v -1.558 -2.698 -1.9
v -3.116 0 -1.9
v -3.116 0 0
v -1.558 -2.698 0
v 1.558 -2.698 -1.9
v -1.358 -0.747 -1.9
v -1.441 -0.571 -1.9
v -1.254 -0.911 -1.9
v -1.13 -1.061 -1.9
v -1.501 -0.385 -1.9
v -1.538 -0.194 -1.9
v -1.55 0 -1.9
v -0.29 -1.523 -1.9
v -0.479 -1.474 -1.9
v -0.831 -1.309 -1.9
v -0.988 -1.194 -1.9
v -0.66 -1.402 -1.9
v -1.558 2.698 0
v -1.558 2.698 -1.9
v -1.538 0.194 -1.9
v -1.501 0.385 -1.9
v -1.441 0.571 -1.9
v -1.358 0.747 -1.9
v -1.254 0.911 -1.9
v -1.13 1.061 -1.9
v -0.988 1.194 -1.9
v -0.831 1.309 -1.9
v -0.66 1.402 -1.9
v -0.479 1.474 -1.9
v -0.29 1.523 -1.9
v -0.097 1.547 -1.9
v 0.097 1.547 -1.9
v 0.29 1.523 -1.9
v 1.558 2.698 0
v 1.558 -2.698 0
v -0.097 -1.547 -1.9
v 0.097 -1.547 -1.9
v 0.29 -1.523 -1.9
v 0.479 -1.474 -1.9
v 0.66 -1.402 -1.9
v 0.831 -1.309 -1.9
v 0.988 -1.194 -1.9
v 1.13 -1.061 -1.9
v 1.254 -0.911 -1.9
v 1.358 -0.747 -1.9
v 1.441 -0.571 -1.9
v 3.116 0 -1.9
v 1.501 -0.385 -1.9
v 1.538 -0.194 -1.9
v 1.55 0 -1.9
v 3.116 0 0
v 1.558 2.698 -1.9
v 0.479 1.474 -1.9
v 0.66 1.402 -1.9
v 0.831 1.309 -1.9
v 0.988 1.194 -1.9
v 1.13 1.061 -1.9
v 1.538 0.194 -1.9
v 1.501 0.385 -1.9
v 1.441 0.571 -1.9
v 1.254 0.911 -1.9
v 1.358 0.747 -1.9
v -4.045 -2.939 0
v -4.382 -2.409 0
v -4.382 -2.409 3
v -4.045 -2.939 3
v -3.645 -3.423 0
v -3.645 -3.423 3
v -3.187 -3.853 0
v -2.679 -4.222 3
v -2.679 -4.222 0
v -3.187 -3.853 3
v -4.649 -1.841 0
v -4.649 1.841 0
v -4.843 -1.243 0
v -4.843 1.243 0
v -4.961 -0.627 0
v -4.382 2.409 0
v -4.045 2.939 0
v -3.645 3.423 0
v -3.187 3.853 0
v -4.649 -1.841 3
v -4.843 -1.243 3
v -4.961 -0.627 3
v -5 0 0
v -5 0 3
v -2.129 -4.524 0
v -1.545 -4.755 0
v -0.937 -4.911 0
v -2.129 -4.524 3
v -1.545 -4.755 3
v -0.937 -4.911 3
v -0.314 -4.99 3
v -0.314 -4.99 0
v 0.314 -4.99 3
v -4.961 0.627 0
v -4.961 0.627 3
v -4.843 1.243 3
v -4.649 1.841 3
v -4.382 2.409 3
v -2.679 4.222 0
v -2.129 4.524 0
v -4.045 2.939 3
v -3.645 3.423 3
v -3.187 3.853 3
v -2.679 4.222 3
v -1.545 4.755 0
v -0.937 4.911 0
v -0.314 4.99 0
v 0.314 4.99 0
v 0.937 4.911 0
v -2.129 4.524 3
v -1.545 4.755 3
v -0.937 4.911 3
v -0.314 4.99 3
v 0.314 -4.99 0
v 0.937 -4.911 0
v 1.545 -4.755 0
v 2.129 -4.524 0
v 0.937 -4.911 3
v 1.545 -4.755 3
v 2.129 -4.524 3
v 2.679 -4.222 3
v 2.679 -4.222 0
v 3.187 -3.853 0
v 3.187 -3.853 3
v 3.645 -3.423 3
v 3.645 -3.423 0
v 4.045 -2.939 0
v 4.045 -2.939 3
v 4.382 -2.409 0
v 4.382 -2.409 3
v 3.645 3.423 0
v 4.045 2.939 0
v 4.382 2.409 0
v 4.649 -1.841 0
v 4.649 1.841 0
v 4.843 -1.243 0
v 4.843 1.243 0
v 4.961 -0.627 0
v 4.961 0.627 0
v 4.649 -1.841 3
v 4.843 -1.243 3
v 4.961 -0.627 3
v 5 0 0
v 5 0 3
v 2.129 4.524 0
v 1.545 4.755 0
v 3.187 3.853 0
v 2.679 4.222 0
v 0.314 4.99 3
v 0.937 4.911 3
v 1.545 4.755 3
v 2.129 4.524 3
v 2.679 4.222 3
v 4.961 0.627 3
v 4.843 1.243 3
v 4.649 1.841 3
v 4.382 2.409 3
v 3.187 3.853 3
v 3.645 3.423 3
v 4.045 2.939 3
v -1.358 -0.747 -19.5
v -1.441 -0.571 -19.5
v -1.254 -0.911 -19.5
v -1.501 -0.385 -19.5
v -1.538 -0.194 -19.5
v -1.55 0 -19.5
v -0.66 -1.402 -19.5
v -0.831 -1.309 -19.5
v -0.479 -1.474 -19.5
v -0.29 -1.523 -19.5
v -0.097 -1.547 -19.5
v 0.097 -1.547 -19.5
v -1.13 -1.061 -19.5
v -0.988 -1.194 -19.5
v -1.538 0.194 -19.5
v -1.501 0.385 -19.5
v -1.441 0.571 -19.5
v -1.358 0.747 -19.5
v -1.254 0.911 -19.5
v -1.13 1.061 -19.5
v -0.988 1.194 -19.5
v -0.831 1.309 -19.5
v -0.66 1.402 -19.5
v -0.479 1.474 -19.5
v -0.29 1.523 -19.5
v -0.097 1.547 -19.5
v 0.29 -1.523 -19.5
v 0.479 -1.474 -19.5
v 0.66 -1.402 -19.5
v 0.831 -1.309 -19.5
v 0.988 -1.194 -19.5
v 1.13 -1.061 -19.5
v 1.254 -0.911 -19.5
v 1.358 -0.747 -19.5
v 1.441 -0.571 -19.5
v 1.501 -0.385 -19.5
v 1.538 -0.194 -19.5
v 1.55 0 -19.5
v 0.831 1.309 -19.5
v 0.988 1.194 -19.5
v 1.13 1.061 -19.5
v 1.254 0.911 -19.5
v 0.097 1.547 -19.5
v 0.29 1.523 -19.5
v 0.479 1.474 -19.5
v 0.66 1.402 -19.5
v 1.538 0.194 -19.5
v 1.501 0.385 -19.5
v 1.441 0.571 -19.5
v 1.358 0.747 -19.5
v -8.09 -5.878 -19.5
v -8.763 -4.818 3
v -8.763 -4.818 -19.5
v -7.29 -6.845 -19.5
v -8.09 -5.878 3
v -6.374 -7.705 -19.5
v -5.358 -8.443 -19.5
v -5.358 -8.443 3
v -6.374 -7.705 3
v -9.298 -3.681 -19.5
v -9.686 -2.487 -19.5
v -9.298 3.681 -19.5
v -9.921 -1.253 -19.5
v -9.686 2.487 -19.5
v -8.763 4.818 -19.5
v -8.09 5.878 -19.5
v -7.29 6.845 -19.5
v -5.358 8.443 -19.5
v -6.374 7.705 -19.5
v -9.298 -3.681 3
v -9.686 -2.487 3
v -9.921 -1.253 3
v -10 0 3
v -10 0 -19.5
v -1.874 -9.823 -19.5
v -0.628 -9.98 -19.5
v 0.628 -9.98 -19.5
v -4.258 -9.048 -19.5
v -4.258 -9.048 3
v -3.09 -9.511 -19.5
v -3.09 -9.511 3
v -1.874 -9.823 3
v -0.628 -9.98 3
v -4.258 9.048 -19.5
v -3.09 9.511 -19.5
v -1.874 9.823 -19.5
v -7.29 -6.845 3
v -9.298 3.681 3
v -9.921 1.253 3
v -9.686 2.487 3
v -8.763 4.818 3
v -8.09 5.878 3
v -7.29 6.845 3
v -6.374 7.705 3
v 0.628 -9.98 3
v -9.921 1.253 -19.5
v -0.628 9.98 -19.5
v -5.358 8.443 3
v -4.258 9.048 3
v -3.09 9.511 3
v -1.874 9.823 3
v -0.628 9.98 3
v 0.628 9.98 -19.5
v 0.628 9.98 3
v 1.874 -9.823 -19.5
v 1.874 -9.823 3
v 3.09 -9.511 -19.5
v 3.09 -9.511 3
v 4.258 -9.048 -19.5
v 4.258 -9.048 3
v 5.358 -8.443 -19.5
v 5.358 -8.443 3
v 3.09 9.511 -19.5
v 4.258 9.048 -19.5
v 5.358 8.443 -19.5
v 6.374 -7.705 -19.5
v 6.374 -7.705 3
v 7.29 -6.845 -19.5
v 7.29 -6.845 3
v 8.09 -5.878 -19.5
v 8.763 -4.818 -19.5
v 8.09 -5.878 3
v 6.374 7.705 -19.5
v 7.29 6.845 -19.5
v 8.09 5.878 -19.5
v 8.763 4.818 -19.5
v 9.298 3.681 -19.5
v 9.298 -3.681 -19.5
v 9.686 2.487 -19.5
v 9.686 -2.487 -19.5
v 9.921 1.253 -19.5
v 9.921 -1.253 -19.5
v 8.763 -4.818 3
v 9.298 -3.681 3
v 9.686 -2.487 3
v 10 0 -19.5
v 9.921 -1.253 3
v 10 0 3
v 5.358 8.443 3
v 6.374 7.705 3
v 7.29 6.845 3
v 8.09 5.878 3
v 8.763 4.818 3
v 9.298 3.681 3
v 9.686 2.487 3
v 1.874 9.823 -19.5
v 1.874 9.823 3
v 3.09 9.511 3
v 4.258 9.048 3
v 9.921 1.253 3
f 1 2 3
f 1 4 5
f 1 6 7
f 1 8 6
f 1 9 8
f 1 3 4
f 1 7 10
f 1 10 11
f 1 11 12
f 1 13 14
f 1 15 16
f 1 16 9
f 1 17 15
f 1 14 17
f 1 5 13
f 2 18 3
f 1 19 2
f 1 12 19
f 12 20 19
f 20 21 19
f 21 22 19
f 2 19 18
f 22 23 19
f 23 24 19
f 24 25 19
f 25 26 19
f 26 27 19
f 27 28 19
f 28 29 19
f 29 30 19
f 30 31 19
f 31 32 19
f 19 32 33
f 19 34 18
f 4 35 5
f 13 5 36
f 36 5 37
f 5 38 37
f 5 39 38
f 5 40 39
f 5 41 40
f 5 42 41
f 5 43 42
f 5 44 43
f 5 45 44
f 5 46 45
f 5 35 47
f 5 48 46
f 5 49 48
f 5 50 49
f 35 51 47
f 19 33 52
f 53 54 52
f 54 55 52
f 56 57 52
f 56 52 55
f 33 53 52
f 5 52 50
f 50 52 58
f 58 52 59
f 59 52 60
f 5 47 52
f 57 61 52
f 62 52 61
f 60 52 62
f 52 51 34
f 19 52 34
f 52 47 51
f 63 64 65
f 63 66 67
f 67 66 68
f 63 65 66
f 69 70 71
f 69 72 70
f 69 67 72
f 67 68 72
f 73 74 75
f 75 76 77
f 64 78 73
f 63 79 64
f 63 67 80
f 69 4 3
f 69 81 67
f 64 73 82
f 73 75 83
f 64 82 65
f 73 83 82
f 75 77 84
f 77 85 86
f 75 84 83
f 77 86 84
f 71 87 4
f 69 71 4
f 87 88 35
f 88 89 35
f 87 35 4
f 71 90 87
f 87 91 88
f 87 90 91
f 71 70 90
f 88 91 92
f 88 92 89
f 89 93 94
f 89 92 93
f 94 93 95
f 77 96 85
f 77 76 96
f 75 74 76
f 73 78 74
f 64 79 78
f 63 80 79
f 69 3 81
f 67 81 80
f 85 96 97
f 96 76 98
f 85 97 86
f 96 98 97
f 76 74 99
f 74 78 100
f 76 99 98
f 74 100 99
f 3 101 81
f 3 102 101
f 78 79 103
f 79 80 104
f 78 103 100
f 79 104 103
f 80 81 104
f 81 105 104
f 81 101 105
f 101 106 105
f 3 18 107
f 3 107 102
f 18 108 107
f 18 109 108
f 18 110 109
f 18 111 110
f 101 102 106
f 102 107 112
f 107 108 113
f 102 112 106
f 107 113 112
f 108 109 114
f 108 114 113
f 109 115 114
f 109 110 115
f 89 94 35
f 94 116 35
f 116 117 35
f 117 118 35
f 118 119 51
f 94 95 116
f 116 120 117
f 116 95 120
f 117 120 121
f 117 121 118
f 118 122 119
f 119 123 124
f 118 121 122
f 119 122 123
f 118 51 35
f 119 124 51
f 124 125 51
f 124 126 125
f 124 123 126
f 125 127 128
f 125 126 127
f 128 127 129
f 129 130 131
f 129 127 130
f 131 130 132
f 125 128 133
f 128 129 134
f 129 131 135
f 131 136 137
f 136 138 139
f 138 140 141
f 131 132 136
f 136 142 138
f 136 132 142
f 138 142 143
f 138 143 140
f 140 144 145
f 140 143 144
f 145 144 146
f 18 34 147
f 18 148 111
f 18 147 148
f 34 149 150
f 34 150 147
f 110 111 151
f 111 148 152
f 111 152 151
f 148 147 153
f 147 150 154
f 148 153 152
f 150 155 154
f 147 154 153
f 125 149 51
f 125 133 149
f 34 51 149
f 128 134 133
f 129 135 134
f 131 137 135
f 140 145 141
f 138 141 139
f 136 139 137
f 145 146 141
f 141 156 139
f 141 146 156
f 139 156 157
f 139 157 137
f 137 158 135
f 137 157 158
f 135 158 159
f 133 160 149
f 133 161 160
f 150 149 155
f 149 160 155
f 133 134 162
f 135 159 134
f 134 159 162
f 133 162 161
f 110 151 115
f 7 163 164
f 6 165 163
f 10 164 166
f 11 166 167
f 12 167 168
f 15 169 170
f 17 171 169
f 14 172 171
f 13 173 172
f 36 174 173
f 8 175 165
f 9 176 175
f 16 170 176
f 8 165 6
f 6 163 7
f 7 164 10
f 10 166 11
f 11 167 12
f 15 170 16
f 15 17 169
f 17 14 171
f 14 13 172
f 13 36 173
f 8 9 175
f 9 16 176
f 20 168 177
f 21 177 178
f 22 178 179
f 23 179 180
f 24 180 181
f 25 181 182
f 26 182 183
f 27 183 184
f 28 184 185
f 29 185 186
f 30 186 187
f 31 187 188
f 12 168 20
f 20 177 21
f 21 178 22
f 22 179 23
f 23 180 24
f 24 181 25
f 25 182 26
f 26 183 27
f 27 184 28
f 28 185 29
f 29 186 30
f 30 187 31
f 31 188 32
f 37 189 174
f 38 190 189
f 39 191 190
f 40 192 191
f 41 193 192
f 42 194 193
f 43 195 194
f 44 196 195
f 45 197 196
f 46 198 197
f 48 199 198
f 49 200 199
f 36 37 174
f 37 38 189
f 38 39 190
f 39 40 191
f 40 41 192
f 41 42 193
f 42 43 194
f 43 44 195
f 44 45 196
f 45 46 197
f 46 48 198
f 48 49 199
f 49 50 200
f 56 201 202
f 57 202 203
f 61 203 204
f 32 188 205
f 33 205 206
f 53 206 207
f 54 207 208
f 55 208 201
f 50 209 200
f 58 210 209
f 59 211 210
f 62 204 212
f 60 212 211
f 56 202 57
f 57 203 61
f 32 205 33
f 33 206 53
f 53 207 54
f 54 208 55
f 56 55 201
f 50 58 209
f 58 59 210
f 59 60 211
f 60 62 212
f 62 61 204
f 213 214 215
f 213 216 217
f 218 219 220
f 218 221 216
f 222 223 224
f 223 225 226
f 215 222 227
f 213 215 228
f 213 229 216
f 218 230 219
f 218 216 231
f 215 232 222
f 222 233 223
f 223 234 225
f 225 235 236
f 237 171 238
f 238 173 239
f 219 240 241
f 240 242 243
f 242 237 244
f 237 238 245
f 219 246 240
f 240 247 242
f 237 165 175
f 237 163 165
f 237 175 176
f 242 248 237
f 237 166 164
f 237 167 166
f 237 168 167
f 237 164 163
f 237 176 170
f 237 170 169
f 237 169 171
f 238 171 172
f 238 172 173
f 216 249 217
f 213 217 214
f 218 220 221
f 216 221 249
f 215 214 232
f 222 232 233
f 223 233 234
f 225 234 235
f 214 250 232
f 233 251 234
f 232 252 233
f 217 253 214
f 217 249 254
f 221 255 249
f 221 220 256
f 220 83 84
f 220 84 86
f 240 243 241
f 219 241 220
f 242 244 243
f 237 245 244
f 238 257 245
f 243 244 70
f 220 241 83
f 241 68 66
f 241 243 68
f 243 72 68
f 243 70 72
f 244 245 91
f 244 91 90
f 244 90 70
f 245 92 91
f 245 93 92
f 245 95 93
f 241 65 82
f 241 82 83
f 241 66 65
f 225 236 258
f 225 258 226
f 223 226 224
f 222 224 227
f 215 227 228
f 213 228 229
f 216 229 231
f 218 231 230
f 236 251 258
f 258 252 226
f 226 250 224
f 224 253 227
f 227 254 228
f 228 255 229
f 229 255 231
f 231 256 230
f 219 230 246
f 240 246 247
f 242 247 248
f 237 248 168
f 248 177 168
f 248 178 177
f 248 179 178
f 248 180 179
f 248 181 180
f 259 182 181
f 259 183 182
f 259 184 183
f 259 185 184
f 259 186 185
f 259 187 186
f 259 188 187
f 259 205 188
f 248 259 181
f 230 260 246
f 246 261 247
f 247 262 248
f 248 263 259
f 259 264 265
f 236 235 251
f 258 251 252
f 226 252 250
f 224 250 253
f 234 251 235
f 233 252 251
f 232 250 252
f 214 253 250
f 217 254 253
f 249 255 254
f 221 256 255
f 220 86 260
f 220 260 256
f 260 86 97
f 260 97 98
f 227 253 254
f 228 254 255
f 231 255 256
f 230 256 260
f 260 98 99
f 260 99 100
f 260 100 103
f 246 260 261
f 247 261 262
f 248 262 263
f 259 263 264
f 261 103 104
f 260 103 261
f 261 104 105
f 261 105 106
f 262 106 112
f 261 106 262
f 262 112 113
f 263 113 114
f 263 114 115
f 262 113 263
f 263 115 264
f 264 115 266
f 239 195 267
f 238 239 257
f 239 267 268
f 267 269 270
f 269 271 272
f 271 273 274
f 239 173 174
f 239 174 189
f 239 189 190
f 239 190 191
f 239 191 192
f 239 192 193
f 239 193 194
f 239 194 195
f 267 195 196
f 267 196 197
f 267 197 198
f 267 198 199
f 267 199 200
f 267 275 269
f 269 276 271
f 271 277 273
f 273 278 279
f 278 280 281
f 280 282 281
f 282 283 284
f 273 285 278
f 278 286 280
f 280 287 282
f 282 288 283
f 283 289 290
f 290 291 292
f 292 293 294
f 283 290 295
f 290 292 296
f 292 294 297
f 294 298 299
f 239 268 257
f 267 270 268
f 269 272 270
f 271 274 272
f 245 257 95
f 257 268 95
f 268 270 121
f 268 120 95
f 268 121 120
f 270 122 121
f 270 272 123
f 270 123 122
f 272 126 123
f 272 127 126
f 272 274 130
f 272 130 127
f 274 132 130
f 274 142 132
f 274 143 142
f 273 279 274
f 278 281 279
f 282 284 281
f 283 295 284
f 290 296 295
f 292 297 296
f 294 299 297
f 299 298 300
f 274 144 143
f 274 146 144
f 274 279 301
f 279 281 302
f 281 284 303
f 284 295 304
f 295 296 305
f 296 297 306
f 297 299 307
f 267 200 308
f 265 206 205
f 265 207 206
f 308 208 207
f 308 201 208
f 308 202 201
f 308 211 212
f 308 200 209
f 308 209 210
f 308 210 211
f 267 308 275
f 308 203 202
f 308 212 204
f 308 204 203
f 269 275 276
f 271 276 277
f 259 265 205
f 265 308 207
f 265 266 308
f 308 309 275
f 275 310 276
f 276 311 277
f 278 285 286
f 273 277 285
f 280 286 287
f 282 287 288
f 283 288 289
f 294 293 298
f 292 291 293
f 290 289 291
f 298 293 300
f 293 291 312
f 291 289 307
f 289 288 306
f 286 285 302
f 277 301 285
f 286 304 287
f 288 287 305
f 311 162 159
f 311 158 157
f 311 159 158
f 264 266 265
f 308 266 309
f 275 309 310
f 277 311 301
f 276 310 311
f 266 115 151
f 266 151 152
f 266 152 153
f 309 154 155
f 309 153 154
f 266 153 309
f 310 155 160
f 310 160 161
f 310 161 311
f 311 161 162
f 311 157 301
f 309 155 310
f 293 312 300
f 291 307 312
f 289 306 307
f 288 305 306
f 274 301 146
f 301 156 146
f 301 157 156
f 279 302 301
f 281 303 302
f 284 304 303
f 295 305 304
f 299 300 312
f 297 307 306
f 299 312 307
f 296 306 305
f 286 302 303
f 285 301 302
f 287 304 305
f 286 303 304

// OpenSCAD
$fn = 50;

difference() {
	union() {
		translate(v = [0, 0, -19.5]) {
			cylinder(h = 22.5, r = 10.0);
		}
	}
	union() {
		translate(v = [0, 0, 0]) {
			rotate(a = [0, 0, 0]) {
				difference() {
					union() {
						translate(v = [0, 0, -1.9]) {
							linear_extrude(height = 1.9) {
								polygon(points = [[3.1158, 0.0], [1.5579000000000005, 2.698361953111554], [-1.5578999999999994, 2.6983619531115544], [-3.1158, 3.815754496783323e-16], [-1.5579000000000014, -2.6983619531115535], [1.557899999999998, -2.6983619531115552]]);
							}
						}
					}
					union();
				}
			}
		}
		#cylinder(h = 3, r = 5.0);
		#translate(v = [0, 0, -100.0]) {
			cylinder(h = 200, r = 1.55);
		}
	}
}
